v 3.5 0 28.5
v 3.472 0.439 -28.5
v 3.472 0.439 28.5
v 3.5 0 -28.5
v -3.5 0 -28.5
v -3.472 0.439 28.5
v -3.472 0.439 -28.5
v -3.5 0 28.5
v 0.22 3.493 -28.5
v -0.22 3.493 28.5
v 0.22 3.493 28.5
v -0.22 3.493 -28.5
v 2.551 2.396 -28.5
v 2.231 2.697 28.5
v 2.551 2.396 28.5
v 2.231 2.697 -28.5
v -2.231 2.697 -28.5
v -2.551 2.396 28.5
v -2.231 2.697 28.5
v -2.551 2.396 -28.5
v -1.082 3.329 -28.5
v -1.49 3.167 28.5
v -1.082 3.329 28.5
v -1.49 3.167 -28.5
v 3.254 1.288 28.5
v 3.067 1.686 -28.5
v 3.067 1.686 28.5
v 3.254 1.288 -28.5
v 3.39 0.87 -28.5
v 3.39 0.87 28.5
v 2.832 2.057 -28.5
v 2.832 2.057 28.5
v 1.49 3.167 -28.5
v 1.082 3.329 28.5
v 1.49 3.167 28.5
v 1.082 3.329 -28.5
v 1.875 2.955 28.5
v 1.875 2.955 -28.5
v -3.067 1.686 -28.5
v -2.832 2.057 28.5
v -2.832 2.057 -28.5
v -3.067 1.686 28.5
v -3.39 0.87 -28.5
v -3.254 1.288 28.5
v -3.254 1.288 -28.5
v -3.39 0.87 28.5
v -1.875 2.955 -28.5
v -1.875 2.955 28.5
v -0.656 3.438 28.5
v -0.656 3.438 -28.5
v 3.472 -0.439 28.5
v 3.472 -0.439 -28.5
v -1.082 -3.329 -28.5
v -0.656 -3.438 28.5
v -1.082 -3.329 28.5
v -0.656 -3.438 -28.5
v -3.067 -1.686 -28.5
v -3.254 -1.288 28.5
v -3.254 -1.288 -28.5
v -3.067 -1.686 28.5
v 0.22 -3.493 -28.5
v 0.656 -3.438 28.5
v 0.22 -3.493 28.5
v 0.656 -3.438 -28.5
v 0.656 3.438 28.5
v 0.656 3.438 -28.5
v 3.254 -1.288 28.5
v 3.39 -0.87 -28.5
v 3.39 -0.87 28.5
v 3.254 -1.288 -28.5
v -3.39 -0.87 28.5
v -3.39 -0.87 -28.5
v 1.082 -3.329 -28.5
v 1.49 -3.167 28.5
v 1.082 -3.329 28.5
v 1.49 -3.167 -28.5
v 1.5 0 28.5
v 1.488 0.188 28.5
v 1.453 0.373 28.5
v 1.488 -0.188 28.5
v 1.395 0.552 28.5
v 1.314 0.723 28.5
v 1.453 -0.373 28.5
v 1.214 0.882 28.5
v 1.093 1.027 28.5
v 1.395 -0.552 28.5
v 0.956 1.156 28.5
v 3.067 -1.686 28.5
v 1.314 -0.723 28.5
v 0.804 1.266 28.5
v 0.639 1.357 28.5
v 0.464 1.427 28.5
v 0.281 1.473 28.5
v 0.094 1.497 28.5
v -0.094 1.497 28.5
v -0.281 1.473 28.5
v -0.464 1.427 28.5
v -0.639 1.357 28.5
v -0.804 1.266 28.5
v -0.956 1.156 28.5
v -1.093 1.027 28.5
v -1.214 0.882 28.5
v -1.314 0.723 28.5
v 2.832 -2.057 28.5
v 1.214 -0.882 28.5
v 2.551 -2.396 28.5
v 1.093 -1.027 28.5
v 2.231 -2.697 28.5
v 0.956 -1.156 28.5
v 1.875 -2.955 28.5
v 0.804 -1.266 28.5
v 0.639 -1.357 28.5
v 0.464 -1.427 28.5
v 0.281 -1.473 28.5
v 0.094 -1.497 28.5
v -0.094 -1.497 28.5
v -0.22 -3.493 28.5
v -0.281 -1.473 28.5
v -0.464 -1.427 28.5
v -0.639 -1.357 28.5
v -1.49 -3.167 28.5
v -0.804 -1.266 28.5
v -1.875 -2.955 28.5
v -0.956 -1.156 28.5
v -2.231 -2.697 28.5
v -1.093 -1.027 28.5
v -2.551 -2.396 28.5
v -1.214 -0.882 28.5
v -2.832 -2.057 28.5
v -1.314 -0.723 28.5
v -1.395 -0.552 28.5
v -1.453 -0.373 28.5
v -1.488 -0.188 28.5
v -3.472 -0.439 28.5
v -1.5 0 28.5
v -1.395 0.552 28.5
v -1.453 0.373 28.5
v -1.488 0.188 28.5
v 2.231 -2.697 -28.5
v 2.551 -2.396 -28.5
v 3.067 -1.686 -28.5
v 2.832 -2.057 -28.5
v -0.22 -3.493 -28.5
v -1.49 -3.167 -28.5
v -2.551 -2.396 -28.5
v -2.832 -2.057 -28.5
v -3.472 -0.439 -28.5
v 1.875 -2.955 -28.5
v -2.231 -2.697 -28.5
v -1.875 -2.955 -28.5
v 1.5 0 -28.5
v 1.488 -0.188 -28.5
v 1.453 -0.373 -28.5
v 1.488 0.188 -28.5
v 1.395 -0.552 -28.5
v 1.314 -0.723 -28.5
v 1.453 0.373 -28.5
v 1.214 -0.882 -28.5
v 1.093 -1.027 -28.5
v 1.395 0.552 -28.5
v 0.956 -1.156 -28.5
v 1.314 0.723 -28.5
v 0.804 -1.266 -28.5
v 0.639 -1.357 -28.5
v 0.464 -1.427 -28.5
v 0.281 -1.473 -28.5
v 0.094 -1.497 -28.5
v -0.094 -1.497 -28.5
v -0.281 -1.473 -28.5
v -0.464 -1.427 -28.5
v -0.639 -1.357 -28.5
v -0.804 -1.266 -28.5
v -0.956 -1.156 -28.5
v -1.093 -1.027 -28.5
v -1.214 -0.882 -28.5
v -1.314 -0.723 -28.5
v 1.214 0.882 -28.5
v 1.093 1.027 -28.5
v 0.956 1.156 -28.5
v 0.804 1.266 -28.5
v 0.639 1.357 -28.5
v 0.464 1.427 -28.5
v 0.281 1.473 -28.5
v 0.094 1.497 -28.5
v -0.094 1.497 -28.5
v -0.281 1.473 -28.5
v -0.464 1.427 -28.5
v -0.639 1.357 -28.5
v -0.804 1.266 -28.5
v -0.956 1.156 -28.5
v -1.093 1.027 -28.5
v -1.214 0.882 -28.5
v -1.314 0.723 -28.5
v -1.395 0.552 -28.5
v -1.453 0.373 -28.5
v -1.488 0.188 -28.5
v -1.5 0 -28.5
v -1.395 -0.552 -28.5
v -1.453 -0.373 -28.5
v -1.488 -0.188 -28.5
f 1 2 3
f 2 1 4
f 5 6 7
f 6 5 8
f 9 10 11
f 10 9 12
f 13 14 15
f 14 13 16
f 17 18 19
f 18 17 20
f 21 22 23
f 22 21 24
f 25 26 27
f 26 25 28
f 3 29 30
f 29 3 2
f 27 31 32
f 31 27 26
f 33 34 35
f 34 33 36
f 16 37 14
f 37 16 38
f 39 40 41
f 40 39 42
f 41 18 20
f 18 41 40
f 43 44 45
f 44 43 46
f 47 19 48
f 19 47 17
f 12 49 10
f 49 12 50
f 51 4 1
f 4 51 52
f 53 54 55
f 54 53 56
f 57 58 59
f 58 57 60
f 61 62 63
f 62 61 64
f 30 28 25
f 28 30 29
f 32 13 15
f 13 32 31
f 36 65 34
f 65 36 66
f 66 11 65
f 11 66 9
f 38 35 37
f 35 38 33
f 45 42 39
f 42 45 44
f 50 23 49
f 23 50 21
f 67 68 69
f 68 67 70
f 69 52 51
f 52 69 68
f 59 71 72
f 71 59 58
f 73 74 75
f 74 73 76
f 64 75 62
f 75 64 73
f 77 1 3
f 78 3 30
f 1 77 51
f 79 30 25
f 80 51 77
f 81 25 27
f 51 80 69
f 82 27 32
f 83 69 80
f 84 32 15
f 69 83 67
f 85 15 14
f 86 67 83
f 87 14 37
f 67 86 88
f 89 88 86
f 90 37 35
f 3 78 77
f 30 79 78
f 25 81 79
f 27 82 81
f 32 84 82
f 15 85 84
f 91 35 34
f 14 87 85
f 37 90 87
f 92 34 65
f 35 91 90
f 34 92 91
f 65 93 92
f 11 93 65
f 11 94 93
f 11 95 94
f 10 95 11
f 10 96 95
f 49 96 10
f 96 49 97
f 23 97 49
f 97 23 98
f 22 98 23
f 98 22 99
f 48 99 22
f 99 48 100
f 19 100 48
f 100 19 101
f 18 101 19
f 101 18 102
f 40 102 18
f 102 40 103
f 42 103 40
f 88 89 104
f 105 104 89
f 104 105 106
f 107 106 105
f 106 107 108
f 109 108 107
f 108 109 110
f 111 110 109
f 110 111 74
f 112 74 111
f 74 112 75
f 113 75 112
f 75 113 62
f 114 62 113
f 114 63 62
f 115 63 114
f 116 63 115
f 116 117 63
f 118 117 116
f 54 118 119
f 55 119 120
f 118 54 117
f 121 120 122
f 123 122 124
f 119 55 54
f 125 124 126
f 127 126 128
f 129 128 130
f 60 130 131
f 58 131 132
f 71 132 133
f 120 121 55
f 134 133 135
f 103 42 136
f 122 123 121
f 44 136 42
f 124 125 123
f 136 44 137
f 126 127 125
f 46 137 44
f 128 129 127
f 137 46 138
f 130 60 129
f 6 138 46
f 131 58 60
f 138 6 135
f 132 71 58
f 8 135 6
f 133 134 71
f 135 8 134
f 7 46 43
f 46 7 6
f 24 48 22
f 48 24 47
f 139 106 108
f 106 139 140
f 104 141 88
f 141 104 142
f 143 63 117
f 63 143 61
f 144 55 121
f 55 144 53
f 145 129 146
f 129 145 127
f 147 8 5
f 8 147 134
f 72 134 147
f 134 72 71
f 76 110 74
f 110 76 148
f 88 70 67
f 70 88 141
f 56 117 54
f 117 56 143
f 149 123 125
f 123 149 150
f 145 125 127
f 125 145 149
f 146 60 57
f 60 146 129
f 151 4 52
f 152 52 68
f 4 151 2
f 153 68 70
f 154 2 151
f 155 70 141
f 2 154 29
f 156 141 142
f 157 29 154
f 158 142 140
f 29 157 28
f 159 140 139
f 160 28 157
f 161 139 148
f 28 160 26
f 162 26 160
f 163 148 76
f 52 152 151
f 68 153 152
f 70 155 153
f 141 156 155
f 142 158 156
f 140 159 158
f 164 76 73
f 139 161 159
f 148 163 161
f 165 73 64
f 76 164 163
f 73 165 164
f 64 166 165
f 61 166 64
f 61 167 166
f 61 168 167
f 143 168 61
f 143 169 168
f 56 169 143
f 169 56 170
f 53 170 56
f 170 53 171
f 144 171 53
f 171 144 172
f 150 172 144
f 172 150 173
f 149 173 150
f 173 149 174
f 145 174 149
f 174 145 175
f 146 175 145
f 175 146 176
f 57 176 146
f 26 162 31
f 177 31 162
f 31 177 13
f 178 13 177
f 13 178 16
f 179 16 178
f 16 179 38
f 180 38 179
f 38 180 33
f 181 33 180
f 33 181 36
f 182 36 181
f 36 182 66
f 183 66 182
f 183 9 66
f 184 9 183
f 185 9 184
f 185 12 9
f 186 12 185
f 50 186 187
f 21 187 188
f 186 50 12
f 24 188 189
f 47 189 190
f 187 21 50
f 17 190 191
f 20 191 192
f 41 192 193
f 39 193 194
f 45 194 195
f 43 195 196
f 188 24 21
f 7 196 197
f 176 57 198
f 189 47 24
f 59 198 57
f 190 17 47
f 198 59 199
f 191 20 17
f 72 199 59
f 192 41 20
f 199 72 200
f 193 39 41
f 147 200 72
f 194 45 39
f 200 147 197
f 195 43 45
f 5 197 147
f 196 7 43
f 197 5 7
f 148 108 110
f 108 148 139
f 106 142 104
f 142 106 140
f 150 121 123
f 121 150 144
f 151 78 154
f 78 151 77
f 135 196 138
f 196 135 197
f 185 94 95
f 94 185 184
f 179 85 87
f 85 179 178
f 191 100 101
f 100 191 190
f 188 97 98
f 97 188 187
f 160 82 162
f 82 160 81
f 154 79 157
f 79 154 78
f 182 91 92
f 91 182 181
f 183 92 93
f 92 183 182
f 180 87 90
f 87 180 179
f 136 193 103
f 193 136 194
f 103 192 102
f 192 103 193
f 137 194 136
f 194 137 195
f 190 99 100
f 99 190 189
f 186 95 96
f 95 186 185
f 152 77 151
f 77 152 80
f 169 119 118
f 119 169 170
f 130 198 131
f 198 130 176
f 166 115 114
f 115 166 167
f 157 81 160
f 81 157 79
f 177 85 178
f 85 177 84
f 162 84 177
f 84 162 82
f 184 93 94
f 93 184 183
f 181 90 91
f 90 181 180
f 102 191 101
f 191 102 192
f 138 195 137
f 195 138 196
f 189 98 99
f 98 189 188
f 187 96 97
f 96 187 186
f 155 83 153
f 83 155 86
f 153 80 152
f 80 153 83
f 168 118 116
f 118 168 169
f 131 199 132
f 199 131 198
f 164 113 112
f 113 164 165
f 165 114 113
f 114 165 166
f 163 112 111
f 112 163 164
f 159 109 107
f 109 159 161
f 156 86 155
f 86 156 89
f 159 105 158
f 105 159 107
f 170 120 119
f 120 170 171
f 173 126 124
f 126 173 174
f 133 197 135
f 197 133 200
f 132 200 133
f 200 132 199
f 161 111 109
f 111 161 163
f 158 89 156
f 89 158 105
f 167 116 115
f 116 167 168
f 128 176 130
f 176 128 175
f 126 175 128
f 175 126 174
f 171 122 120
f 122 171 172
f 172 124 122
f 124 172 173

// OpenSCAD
$fn = 50;


difference() {
	union() {
		translate(v = [0, 0, -28.5000000000]) {
			cylinder(h = 57, r = 3.5000000000);
		}
	}
	union() {
		translate(v = [0, 0, -100.0000000000]) {
			cylinder(h = 200, r = 1.5000000000);
		}
	}
}
